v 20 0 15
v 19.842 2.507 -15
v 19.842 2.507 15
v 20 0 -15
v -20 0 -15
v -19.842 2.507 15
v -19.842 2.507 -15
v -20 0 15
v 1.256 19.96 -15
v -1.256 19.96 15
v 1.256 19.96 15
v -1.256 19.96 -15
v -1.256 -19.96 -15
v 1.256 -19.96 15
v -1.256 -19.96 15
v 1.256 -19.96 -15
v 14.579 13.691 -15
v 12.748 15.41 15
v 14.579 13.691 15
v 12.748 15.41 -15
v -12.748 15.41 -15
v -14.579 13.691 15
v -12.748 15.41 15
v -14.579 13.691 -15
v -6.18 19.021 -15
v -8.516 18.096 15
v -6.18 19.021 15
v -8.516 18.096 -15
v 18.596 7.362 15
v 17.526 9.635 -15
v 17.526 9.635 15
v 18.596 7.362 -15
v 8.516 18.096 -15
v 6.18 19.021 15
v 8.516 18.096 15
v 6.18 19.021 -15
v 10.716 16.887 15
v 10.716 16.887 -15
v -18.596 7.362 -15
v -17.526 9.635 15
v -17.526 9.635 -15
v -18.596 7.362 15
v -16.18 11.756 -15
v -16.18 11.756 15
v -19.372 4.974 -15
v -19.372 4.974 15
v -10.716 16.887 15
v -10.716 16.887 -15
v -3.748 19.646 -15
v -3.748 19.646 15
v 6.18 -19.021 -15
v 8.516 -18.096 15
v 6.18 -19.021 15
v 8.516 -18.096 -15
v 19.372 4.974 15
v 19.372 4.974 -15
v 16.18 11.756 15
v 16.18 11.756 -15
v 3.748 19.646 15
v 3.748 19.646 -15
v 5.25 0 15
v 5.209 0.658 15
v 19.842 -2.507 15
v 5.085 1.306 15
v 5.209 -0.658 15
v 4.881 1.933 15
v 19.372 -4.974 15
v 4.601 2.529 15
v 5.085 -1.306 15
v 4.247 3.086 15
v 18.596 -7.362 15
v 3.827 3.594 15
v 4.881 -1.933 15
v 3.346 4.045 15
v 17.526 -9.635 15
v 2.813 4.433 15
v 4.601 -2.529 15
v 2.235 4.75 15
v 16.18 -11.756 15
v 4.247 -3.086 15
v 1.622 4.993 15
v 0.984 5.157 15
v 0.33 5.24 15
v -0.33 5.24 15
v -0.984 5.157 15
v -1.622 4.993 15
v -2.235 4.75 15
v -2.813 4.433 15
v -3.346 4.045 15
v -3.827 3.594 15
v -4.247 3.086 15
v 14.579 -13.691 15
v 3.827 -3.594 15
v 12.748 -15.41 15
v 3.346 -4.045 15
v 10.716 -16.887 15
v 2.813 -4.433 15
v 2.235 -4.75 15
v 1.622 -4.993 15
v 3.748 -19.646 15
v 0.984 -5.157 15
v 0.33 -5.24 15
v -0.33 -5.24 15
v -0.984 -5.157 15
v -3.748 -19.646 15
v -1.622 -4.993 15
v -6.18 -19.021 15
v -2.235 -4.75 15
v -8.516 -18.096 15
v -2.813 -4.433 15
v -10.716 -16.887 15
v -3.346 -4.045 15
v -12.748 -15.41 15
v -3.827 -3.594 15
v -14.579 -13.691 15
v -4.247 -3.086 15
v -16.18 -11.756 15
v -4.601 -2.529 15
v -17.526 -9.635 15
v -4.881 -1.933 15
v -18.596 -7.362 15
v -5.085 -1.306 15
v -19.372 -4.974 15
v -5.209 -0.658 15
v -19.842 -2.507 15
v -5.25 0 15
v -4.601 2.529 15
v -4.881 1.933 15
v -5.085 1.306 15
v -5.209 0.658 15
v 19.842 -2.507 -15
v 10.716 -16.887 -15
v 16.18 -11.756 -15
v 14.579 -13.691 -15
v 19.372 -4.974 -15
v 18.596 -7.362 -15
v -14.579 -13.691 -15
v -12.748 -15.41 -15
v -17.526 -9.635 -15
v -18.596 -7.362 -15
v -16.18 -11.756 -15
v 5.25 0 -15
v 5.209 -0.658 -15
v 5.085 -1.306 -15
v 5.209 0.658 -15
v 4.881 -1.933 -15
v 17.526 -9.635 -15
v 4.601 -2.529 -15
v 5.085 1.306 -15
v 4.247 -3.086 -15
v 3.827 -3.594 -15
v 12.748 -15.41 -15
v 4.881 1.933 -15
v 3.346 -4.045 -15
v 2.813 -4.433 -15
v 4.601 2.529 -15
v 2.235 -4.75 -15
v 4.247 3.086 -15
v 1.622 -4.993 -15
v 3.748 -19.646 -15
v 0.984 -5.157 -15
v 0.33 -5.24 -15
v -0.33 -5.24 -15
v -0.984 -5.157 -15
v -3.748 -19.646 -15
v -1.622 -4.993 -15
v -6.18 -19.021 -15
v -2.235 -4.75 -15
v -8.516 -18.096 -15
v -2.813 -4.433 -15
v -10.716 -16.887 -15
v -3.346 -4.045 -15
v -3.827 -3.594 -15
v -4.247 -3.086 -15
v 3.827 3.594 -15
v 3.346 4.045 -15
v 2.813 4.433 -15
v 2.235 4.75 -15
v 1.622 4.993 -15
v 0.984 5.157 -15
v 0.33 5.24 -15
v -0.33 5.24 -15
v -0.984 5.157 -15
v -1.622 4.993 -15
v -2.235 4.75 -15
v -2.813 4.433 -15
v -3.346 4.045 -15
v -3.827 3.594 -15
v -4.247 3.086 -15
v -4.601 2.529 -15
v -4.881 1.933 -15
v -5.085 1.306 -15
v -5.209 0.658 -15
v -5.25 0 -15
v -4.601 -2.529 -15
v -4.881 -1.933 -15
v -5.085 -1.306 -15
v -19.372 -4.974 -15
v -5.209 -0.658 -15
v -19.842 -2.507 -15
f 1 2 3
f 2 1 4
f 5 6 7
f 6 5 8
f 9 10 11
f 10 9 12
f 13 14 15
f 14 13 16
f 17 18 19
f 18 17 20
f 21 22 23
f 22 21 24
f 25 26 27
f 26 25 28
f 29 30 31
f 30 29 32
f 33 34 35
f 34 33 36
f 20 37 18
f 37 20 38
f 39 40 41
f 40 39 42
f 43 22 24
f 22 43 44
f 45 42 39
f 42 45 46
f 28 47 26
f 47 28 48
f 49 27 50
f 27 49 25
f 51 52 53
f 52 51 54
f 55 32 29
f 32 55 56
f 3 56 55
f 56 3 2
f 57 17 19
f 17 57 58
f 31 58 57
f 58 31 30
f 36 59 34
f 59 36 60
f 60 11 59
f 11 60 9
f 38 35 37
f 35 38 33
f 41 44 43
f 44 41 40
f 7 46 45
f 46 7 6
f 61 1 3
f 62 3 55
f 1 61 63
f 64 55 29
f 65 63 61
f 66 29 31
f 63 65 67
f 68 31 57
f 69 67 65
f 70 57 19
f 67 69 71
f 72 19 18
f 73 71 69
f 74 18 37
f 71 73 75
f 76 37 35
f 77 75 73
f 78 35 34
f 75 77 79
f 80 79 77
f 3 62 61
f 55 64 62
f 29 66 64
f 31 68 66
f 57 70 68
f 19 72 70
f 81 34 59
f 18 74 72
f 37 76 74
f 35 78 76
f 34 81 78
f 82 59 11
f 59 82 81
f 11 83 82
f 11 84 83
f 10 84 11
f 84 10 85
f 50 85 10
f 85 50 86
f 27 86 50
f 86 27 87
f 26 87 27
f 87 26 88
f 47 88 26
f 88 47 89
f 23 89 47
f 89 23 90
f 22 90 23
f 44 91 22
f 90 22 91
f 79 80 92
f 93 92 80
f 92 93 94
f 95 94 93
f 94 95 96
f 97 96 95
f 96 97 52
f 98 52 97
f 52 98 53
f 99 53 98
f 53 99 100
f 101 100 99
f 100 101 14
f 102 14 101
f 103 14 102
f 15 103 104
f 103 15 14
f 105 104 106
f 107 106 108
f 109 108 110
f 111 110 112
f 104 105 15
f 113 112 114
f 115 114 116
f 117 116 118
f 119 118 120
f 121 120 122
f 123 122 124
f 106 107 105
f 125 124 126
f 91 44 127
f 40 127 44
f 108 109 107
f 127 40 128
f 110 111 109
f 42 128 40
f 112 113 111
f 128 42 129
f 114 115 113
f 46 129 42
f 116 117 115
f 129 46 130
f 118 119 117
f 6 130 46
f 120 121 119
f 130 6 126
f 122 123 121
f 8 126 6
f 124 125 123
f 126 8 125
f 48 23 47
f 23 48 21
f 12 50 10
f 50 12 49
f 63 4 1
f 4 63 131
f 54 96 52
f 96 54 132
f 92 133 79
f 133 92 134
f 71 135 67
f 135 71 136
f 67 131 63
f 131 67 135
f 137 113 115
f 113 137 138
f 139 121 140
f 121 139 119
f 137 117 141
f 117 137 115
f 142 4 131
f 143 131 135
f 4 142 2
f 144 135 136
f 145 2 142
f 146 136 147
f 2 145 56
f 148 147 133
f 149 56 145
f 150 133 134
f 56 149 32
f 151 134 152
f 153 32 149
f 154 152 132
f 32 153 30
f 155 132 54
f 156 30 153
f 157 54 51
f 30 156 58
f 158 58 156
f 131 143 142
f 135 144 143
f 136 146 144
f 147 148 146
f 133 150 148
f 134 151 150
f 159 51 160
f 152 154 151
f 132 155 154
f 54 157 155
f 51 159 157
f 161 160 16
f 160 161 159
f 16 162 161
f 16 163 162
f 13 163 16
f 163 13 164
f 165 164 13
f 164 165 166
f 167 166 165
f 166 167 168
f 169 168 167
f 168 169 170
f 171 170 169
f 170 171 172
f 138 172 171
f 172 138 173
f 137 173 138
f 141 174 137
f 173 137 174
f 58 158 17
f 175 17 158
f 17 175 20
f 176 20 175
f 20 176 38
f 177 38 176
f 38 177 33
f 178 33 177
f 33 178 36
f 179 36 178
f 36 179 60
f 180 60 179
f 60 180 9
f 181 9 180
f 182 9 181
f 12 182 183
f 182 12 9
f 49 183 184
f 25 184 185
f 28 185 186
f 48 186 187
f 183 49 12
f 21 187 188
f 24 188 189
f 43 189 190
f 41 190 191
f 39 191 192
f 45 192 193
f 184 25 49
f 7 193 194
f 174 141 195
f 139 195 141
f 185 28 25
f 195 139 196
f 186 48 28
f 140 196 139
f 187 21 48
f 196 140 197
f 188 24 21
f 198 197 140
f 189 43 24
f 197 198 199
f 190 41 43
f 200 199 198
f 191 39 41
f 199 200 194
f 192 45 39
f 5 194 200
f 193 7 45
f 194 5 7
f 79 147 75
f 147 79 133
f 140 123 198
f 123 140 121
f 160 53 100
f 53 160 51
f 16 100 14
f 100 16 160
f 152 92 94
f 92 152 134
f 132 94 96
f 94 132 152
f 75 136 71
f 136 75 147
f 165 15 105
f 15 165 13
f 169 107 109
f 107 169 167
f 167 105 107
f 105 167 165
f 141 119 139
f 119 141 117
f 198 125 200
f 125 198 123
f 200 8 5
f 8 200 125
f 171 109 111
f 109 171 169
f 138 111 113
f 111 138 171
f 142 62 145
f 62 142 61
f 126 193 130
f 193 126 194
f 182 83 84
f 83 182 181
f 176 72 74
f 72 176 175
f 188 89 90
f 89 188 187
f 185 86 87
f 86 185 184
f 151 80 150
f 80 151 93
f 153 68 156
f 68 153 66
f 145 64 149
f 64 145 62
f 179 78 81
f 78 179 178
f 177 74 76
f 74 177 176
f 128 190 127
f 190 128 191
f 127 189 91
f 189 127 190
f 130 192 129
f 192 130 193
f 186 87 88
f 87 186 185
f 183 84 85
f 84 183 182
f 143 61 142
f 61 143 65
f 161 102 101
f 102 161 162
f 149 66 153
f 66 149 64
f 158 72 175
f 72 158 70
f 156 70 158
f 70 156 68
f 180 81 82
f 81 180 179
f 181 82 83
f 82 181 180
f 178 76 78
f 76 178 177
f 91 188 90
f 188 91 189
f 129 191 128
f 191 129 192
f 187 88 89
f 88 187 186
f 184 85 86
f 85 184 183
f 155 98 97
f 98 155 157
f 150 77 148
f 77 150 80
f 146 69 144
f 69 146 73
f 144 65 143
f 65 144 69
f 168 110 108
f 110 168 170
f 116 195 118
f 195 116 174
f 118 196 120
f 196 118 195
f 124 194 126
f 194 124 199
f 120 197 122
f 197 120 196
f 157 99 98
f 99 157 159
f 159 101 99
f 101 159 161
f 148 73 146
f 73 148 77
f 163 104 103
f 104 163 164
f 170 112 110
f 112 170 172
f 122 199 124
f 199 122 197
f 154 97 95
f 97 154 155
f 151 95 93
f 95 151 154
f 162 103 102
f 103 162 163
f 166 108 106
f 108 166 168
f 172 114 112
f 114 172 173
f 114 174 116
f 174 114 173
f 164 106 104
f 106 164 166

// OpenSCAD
$fn = 50;


difference() {
	union() {
		translate(v = [0, 0, -15.0000000000]) {
			cylinder(h = 30, r = 20.0000000000);
		}
	}
	union() {
		translate(v = [0, 0, -100.0000000000]) {
			cylinder(h = 200, r = 5.2500000000);
		}
	}
}
